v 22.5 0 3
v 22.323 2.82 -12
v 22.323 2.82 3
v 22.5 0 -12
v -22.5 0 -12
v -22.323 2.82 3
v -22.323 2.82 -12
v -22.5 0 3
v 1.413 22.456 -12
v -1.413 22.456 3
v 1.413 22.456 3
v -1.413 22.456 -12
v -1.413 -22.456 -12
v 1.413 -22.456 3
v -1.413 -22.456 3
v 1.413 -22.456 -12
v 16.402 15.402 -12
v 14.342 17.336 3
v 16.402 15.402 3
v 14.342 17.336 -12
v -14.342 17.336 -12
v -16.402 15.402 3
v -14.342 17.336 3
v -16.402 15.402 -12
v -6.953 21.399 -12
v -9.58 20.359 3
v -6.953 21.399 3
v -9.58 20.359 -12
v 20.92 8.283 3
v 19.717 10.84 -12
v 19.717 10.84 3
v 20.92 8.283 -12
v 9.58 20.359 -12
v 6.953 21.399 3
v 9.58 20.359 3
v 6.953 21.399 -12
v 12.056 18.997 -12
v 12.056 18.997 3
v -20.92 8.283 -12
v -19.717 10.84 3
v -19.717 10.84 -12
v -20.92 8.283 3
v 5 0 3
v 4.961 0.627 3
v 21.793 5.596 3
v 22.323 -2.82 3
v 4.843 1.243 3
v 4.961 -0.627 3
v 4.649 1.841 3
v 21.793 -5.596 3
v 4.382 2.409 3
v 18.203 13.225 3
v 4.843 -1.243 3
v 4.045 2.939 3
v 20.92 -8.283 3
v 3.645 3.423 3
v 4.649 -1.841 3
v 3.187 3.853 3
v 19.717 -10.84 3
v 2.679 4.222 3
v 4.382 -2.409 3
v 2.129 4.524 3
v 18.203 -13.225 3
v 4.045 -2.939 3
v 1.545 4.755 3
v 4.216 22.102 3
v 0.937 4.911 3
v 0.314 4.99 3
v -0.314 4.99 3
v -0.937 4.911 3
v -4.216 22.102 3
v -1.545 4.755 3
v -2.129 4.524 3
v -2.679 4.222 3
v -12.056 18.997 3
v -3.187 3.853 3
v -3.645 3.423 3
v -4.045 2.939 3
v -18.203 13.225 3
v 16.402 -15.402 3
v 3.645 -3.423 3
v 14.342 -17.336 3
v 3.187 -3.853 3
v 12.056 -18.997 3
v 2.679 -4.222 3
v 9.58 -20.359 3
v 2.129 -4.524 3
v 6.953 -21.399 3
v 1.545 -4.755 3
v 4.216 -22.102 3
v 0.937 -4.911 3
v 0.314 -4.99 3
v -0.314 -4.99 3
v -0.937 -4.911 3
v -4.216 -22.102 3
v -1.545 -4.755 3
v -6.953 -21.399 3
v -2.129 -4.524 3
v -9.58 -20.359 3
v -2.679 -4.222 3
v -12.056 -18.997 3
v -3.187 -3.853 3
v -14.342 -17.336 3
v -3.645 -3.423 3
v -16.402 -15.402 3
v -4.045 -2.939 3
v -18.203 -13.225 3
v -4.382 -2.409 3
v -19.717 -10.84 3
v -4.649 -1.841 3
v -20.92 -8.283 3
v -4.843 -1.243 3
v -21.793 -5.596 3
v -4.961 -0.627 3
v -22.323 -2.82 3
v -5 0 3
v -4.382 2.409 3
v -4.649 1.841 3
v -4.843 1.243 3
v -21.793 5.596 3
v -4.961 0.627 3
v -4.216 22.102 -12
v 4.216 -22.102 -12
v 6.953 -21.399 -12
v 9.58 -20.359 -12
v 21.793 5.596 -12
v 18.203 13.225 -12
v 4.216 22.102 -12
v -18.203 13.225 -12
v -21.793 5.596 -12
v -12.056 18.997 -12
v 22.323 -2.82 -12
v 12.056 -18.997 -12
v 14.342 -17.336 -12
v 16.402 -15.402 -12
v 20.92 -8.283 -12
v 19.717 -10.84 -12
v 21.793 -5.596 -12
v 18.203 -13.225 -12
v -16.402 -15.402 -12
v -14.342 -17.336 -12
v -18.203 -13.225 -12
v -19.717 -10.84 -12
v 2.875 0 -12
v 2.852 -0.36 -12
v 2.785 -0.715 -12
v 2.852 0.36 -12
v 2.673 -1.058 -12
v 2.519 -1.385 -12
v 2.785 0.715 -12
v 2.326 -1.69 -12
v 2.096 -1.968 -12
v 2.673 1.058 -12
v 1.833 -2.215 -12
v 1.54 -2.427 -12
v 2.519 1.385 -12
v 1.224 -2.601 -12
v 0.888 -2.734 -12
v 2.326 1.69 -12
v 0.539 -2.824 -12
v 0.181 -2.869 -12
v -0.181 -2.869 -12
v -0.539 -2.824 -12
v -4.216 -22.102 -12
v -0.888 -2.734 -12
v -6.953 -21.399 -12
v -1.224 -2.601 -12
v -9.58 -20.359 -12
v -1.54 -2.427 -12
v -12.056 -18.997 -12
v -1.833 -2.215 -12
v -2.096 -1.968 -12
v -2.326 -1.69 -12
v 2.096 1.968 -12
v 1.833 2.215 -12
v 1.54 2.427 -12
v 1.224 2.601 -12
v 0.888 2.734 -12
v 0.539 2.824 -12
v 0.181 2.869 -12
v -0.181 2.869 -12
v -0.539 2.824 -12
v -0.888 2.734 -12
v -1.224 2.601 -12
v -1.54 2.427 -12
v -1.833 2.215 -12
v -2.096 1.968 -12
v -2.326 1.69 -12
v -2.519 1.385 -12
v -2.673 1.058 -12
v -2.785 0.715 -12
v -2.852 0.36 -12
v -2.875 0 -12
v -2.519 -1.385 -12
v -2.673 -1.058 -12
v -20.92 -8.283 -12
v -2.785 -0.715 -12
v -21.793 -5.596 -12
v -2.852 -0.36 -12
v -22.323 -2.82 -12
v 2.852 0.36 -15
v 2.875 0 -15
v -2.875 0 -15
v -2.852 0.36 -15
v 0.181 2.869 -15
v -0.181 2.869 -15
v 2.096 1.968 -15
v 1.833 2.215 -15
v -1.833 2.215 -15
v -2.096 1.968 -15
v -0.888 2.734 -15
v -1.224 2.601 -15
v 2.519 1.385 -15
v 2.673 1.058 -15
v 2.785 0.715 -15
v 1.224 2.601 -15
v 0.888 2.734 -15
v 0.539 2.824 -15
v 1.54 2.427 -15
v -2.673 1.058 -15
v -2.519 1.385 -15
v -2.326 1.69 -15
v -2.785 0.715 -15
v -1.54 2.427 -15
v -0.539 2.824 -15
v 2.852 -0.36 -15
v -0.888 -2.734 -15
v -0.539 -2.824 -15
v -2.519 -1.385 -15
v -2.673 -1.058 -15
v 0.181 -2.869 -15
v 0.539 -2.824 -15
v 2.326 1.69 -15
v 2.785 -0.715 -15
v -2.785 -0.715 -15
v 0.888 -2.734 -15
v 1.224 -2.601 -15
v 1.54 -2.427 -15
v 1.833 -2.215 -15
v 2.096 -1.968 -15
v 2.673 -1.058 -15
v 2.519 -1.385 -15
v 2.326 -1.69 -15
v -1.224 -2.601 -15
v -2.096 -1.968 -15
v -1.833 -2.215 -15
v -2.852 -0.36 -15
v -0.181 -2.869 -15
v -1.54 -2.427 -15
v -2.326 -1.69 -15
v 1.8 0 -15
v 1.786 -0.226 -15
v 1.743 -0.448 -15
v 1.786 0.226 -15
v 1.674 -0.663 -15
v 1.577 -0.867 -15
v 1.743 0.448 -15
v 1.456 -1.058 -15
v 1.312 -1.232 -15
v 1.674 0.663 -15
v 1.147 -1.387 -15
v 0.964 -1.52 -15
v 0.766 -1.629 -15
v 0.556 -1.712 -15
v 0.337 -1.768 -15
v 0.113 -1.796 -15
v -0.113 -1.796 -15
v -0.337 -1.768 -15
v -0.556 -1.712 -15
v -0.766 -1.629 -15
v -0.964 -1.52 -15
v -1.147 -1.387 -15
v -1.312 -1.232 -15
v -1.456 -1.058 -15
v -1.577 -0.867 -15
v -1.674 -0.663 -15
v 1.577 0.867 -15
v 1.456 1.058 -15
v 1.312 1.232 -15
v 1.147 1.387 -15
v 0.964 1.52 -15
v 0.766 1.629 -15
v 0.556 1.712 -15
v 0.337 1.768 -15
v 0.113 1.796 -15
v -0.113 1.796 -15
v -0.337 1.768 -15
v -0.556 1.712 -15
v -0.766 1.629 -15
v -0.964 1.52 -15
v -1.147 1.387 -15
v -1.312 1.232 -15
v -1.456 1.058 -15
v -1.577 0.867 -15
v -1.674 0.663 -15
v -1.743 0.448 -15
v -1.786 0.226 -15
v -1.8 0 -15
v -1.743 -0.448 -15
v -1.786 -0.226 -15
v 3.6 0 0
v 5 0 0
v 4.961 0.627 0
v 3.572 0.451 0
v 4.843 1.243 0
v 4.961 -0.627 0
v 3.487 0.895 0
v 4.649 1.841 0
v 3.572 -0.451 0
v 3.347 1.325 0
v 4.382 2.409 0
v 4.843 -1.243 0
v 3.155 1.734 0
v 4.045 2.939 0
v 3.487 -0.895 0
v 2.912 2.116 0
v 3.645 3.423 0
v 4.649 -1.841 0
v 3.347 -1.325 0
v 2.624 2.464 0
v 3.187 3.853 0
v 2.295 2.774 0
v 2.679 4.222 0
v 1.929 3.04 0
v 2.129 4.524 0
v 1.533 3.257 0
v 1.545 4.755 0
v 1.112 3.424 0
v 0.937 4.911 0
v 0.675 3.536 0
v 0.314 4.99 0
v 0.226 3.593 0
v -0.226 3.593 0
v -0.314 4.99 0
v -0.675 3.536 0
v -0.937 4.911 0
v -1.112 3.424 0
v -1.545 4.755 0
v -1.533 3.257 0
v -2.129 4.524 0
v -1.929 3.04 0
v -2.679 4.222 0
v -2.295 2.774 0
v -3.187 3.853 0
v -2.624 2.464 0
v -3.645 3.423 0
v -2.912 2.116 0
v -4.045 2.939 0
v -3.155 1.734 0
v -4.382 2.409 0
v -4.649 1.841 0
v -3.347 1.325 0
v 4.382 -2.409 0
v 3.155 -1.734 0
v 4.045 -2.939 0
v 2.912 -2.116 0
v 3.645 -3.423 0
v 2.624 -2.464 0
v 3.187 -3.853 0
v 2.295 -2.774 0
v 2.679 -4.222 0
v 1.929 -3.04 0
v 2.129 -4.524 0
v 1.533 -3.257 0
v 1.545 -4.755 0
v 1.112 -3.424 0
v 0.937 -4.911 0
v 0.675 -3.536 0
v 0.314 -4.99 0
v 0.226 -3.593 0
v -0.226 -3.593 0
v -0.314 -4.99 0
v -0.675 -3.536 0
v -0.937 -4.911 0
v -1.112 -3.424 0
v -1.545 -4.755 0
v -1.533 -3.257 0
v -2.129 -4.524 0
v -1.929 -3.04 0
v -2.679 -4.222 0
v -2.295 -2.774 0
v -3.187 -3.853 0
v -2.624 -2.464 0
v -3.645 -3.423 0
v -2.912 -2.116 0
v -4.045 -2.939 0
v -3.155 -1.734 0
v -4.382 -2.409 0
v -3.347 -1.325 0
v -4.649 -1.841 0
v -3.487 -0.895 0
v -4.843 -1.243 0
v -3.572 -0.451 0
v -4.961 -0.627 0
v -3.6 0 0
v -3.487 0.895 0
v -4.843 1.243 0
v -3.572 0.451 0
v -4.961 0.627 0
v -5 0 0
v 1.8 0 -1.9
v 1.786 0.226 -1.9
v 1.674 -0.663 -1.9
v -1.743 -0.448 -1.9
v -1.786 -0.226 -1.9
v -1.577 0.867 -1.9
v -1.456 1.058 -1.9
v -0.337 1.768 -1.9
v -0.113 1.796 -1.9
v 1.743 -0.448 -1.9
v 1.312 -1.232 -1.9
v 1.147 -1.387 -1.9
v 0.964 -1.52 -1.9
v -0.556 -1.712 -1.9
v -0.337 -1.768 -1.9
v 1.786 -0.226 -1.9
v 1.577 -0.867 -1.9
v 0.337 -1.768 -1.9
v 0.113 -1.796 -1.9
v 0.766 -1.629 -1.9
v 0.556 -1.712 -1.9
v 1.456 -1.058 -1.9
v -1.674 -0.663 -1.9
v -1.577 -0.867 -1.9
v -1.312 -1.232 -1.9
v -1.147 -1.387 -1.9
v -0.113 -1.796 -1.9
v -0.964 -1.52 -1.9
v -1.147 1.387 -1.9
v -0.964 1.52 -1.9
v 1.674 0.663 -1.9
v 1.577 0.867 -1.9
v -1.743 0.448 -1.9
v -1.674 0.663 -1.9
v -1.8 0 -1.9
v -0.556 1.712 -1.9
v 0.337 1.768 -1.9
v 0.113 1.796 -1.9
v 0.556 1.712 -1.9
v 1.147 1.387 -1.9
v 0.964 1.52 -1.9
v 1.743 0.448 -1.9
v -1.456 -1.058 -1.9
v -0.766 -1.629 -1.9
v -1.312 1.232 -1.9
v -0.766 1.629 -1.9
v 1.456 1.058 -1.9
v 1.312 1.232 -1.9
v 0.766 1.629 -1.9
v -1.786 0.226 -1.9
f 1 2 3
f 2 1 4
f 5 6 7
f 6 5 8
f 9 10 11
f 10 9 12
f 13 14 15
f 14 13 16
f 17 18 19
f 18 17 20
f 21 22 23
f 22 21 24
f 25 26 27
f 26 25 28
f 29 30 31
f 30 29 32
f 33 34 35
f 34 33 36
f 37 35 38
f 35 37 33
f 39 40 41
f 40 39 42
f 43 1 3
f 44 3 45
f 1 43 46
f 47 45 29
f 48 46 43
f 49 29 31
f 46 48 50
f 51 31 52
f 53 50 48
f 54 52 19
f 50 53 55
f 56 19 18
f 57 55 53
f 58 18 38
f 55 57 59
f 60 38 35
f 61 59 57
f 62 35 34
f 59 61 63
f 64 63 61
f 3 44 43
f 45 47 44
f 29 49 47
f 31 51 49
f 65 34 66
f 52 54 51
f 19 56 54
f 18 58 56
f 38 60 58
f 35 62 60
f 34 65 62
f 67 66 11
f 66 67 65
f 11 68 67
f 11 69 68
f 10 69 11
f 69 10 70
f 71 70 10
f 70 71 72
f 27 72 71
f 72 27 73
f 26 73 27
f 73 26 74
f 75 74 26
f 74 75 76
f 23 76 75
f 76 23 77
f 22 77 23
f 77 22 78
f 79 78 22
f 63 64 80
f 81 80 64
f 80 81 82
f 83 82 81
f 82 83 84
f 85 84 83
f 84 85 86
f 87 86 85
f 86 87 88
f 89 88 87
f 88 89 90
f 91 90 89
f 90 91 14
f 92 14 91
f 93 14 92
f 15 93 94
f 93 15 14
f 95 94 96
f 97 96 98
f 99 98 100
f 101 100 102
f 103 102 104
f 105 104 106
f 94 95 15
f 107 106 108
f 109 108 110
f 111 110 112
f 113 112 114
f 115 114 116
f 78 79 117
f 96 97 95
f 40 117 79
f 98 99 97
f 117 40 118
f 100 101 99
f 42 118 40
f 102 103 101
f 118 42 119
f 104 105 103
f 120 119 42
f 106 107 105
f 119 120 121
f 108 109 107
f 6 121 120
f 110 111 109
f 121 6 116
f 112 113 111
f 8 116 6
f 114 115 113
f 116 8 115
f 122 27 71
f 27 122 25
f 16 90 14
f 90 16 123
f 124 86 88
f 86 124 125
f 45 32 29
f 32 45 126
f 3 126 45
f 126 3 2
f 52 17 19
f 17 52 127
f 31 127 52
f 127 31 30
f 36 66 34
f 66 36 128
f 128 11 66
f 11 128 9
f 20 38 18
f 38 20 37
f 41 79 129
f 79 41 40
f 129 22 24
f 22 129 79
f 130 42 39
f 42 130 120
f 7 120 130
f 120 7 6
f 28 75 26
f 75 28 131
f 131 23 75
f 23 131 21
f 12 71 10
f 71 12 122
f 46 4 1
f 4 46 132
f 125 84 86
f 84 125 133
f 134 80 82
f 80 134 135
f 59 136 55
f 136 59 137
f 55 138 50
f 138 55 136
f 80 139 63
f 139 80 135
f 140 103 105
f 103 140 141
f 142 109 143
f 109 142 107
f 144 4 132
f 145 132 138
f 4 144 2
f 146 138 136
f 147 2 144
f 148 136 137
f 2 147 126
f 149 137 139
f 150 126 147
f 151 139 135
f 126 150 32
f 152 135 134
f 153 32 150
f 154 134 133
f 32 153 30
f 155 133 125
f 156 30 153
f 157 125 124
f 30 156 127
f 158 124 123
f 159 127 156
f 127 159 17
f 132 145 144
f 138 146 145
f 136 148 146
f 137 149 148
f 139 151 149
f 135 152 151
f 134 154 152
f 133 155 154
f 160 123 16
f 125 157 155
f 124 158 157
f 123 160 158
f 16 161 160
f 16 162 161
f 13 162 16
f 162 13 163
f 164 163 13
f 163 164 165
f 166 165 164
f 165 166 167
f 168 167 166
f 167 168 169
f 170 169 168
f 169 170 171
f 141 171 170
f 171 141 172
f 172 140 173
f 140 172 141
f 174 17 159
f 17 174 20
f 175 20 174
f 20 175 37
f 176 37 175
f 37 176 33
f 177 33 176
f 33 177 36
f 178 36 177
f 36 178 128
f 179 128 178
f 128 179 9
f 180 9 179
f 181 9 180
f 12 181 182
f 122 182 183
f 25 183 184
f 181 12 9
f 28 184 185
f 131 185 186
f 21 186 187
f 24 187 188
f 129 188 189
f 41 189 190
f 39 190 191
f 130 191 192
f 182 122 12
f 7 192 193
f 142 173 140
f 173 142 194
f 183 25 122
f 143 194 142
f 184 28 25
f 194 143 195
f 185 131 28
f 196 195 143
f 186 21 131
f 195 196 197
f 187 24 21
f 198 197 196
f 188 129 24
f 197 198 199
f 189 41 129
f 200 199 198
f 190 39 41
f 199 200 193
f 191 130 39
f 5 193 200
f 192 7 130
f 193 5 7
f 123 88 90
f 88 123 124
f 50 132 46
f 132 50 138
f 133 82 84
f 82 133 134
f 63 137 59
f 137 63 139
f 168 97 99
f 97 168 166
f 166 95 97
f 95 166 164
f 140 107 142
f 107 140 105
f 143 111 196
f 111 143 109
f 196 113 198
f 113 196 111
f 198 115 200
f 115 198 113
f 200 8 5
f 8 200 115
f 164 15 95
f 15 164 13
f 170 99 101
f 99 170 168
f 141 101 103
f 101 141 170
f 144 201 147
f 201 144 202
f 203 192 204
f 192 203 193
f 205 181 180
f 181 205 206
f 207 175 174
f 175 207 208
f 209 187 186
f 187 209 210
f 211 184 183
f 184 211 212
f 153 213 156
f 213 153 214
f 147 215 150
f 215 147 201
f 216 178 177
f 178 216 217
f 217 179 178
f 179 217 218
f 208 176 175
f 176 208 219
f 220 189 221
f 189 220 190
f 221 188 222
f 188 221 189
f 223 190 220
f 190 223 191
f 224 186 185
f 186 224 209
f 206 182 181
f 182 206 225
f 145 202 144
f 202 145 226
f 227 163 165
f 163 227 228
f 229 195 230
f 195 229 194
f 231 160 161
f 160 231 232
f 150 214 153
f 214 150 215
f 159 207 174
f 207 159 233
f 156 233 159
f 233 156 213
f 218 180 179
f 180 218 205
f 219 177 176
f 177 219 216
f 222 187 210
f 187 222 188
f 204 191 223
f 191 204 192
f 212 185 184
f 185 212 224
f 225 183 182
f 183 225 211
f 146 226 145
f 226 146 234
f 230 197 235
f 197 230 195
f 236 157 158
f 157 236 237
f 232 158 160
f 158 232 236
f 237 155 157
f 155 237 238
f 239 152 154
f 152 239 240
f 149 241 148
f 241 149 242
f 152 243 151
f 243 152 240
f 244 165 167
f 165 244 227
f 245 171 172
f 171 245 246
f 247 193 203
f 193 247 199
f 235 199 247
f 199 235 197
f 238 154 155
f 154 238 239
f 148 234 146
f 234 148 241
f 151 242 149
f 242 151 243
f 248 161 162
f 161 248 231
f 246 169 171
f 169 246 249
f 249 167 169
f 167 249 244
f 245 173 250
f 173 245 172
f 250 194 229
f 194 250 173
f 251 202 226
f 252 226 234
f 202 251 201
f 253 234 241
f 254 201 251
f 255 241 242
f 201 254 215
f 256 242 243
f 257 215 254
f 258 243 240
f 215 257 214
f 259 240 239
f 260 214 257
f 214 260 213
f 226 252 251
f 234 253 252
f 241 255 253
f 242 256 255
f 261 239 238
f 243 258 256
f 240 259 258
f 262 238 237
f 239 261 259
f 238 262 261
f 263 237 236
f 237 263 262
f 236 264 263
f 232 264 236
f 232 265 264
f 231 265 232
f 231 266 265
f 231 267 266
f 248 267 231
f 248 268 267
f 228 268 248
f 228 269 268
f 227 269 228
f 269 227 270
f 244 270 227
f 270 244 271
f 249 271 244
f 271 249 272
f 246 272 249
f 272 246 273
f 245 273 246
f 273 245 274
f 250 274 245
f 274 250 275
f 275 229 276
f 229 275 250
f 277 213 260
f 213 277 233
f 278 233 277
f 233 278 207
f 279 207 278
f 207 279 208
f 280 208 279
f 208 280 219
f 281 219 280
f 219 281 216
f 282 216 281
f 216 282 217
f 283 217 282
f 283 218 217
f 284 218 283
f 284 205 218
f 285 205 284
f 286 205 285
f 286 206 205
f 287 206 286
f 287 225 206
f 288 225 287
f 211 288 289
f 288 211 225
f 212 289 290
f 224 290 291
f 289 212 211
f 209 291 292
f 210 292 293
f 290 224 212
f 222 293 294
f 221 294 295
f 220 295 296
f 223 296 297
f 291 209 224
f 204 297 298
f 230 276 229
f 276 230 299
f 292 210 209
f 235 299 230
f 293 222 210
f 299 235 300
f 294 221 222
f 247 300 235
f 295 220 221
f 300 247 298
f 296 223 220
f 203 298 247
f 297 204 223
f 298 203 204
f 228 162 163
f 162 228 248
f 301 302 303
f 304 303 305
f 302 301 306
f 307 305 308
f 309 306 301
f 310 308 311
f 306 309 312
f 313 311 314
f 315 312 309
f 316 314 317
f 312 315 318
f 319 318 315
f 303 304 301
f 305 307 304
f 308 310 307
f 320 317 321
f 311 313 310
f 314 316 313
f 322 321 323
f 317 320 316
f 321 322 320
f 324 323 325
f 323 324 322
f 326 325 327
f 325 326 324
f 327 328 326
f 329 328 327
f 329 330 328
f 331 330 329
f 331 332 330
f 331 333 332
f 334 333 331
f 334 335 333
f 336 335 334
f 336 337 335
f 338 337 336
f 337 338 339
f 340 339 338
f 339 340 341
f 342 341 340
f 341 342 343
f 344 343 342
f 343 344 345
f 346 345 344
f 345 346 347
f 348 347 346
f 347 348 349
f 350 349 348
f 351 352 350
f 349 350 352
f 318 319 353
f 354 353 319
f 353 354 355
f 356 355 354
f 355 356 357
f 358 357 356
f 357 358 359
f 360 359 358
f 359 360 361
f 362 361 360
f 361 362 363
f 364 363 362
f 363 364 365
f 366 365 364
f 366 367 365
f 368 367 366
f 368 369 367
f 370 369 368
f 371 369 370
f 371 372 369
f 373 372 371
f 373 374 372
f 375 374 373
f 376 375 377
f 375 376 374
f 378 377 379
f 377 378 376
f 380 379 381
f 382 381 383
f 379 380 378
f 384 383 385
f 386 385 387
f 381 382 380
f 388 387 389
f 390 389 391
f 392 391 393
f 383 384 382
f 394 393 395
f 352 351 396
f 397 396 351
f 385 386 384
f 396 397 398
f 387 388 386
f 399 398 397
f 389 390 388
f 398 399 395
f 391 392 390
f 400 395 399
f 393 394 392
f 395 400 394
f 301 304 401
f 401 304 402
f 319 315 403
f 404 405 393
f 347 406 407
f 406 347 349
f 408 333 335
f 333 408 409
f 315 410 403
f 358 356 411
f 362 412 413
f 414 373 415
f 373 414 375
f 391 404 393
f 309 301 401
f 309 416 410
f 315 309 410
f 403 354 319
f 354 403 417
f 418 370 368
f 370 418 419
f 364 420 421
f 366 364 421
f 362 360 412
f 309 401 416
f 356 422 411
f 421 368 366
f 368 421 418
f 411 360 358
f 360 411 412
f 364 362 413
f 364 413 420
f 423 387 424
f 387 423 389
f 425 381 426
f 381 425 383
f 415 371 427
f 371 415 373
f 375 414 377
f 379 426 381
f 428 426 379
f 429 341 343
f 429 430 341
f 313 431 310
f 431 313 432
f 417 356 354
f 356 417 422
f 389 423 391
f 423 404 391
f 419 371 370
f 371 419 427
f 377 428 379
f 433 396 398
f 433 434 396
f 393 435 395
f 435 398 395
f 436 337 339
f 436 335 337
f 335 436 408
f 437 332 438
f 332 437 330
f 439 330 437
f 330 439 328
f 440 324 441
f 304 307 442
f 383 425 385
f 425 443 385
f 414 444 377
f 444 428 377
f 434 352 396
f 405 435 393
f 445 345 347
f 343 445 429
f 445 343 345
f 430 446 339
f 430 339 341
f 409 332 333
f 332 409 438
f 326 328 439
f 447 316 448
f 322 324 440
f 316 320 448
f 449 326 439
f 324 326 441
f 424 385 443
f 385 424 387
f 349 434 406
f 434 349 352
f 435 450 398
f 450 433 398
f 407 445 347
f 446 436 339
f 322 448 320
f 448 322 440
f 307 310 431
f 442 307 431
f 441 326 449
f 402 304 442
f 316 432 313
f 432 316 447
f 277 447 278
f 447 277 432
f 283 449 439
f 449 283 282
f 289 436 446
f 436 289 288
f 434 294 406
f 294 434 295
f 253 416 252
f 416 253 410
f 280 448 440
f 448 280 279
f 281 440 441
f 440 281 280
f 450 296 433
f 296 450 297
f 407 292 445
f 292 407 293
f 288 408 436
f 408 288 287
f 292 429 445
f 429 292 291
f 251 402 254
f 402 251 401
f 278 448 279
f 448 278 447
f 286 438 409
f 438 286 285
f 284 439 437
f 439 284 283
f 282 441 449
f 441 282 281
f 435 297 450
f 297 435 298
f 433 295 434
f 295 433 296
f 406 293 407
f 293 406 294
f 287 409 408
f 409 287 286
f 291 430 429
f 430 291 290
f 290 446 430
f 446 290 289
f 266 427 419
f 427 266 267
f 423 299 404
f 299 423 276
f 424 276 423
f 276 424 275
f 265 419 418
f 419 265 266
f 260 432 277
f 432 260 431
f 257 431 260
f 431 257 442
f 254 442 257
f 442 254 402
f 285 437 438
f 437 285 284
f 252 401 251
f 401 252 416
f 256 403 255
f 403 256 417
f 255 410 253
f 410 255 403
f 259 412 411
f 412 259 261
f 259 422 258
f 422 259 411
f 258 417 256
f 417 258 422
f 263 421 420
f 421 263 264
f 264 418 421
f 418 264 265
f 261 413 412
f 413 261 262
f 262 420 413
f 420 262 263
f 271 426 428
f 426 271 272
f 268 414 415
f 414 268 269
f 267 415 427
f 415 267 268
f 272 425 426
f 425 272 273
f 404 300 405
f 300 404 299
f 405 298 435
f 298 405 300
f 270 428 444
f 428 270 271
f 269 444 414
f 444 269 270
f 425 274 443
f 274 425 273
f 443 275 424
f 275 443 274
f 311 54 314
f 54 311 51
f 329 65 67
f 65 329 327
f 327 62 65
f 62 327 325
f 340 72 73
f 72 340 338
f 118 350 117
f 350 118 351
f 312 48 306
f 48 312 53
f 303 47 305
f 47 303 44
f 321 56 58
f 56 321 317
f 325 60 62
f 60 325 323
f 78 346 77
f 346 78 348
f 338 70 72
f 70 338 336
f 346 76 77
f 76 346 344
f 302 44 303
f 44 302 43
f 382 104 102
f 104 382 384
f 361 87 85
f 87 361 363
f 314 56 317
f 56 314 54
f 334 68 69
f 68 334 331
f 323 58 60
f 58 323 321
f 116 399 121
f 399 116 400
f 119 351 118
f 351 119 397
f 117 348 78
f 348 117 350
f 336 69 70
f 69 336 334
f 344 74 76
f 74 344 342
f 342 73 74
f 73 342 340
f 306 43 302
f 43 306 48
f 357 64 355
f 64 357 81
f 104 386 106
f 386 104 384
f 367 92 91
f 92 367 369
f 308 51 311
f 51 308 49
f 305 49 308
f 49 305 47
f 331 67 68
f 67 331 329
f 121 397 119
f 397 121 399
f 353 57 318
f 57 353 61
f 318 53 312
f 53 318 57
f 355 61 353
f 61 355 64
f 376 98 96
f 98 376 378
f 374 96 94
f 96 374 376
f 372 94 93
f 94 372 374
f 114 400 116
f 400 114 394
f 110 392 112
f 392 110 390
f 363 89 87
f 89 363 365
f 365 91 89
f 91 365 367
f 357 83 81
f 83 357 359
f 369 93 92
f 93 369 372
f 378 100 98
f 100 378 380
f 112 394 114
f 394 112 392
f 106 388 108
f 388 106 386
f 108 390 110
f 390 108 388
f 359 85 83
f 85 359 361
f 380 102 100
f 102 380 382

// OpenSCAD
$fn = 50;


difference() {
	union() {
		translate(v = [0, 0, -12.0000000000]) {
			cylinder(h = 15, r = 22.5000000000);
		}
		#translate(v = [0, 0, -15.0000000000]) {
			cylinder(h = 15, r = 2.8750000000);
		}
	}
	union() {
		translate(v = [0, 0, 0]) {
			rotate(a = [0, 0, 0]) {
				difference() {
					union() {
						translate(v = [0, 0, -15.0000000000]) {
							cylinder(h = 15, r = 1.5000000000);
						}
						translate(v = [0, 0, -1.9000000000]) {
							cylinder(h = 1.9000000000, r1 = 1.8000000000, r2 = 3.6000000000);
						}
						translate(v = [0, 0, -15.0000000000]) {
							cylinder(h = 15, r = 1.8000000000);
						}
						translate(v = [0, 0, -15.0000000000]) {
							cylinder(h = 15, r = 1.5000000000);
						}
					}
					union();
				}
			}
		}
		#cylinder(h = 3, r = 5.0000000000);
	}
}
